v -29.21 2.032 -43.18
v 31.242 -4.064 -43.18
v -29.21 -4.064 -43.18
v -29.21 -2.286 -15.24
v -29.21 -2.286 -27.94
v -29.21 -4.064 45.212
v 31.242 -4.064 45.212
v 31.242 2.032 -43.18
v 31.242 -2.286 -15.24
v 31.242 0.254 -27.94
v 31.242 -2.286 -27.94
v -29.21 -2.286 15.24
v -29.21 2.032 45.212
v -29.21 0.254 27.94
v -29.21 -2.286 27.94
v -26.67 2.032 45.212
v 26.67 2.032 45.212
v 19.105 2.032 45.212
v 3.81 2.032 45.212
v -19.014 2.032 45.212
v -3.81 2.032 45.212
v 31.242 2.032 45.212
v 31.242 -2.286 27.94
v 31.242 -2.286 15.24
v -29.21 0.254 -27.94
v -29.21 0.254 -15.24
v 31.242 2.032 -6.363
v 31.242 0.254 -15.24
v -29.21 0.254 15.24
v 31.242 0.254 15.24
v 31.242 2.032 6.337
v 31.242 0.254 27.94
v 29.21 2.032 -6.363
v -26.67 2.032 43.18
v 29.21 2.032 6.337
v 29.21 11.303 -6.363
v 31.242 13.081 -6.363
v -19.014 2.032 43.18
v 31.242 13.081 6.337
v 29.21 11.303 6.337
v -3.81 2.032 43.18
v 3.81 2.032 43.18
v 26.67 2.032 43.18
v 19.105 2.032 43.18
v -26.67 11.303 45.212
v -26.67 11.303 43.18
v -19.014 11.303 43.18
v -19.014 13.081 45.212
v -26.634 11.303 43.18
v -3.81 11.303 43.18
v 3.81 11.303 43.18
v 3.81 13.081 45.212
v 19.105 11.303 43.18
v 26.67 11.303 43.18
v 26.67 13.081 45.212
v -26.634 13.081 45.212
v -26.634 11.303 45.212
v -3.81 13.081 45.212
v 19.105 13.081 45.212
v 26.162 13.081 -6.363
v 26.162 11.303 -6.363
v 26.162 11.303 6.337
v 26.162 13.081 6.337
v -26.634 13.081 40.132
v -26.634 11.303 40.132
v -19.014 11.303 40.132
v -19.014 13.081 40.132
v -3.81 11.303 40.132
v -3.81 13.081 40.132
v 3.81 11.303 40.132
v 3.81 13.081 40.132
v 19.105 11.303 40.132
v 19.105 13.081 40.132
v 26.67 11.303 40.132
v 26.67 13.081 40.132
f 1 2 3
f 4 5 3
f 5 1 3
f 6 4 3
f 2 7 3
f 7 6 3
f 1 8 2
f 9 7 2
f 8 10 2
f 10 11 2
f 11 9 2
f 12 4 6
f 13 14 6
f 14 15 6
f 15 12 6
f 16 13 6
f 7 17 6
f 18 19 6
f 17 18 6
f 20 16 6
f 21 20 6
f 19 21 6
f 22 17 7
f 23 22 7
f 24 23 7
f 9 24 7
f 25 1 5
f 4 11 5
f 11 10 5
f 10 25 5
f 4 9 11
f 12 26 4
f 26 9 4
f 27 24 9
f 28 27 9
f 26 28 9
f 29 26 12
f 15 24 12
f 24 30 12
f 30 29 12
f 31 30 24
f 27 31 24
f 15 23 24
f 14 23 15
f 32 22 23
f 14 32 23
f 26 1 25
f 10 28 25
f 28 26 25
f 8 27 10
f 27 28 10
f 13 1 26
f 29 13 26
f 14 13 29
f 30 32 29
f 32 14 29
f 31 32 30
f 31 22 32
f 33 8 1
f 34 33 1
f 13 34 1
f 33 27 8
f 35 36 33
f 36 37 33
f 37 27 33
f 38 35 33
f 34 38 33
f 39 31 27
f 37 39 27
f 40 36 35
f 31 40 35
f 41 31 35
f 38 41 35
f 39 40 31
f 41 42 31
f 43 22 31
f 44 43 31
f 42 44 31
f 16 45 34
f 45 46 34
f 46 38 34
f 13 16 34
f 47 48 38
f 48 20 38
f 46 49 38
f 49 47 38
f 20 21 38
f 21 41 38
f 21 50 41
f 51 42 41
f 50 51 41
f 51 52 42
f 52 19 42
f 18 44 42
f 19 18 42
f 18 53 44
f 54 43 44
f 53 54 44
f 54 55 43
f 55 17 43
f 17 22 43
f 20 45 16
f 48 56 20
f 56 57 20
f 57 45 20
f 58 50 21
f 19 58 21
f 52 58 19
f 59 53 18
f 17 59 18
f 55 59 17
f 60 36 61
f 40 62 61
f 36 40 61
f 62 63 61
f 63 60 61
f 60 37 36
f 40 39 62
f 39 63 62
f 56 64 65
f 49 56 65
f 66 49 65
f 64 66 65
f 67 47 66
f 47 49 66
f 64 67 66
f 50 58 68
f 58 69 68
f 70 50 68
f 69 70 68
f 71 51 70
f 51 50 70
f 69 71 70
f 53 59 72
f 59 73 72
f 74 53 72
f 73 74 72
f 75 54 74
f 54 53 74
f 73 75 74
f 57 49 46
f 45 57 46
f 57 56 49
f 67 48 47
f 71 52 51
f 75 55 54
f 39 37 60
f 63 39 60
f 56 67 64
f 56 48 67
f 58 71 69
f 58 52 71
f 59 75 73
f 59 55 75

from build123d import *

# Parameters (mm, degrees)
SKETCH1_W             = 58.42
SKETCH1_H             = 86.36
BASEPLATE_DEPTH       = 2.032
SKETCH5_W             = 7.62
SKETCH5_H             = 2.032
BOSS_EXTRUDE3_DEPTH   = 9.271
SKETCH5_W_2           = 7.656133635
BOSS_EXTRUDE3_2_DEPTH = 9.271
SKETCH5_W_3           = 7.565007612
BOSS_EXTRUDE3_3_DEPTH = 9.271
SKETCH5_W_4           = 2.032
SKETCH5_H_2           = 12.7
BOSS_EXTRUDE3_4_DEPTH = 9.271
SKETCH5_2_W           = 7.62
SKETCH5_2_H           = 2.032
SKETCH5_2_W_2         = 7.656133635
SKETCH5_2_W_3         = 7.565007612
SKETCH5_2_W_4         = 2.032
SKETCH5_2_H_2         = 12.7
BOSS_EXTRUDE4_DEPTH   = 2.032
SKETCH6_W             = 7.565007612
SKETCH6_H             = 1.778
BOSS_EXTRUDE5_DEPTH   = 3.048
SKETCH6_W_2           = 7.62
BOSS_EXTRUDE5_2_DEPTH = 3.048
BOSS_EXTRUDE5_3_DEPTH = 3.048
SKETCH6_2_W           = 7.565007612
SKETCH6_2_H           = 1.778
SKETCH6_2_W_2         = 7.62
BOSS_EXTRUDE6_DEPTH   = 2.032
SKETCH7_W             = 15.203866365
SKETCH7_H             = 2.032
SKETCH7_W_2           = 15.294992388
SKETCH7_W_3           = 2.54
SKETCH7_W_4           = 2.032
SKETCH7_H_2           = 36.817012066
BOSS_EXTRUDE7_DEPTH   = 2.032
SKETCH9_W             = 12.7
SKETCH9_H             = 1.778
BOSS_EXTRUDE8_DEPTH   = 3.048
SKETCH9_2_W           = 12.7
SKETCH9_2_H           = 1.778
BOSS_EXTRUDE9_DEPTH   = 2.032
SKETCH11_W            = 60.452
SKETCH11_H            = 88.392
BOSS_EXTRUDE10_DEPTH  = 4.064
SKETCH12_W            = 12.7
SKETCH12_H            = 2.54
CUT_EXTRUDE1_DEPTH    = 77.613848676


with BuildPart() as part:
    # Sketch1 → basePlate (new body)
    with BuildSketch(Plane(origin=(0, 0, 0), x_dir=(1, 0, 0), z_dir=(0, 1, 0))):
        Rectangle(SKETCH1_W, SKETCH1_H)
    extrude(amount=BASEPLATE_DEPTH)



with BuildPart() as body_2:
    # Sketch5 → Boss-Extrude3 (new body)
    with BuildSketch(Plane(origin=(0, 2.032, 0), x_dir=(1, 0, 0), z_dir=(0, 1, 0))):
        with Locations((0, -44.196)):
            Rectangle(SKETCH5_W, SKETCH5_H)
    extrude(amount=BOSS_EXTRUDE3_DEPTH)


with BuildPart() as body_3:
    # Sketch5 → Boss-Extrude3 2 (new body)
    with BuildSketch(Plane(origin=(0, 2.032, 0), x_dir=(1, 0, 0), z_dir=(0, 1, 0))):
        with Locations((-22.841933183, -44.196)):
            Rectangle(SKETCH5_W_2, SKETCH5_H)
    extrude(amount=BOSS_EXTRUDE3_2_DEPTH)


with BuildPart() as body_4:
    # Sketch5 → Boss-Extrude3 3 (new body)
    with BuildSketch(Plane(origin=(0, 2.032, 0), x_dir=(1, 0, 0), z_dir=(0, 1, 0))):
        with Locations((22.887496194, -44.196)):
            Rectangle(SKETCH5_W_3, SKETCH5_H)
    extrude(amount=BOSS_EXTRUDE3_3_DEPTH)


with BuildPart() as body_5:
    # Sketch5 → Boss-Extrude3 4 (new body)
    with BuildSketch(Plane(origin=(0, 2.032, 0), x_dir=(1, 0, 0), z_dir=(0, 1, 0))):
        with Locations((30.226, 0.012987934)):
            Rectangle(SKETCH5_W_4, SKETCH5_H_2)
    extrude(amount=BOSS_EXTRUDE3_4_DEPTH)


with BuildPart() as part_1:
    add(part.part)

    add(body_2.part)  # Boss-Extrude4 merges body 2

    add(body_3.part)  # Boss-Extrude4 merges body 3

    add(body_4.part)  # Boss-Extrude4 merges body 4

    add(body_5.part)  # Boss-Extrude4 merges body 5
    # Sketch5<2> → Boss-Extrude4 (add)
    with BuildSketch(Plane(origin=(0, 2.032, 0), x_dir=(1, 0, 0), z_dir=(0, 1, 0))):
        with Locations((0, -44.196)):
            Rectangle(SKETCH5_2_W, SKETCH5_2_H)
        with Locations((-22.841933183, -44.196)):
            Rectangle(SKETCH5_2_W_2, SKETCH5_2_H)
        with Locations((22.887496194, -44.196)):
            Rectangle(SKETCH5_2_W_3, SKETCH5_2_H)
        with Locations((30.226, 0.012987934)):
            Rectangle(SKETCH5_2_W_4, SKETCH5_2_H_2)
    extrude(amount=-BOSS_EXTRUDE4_DEPTH)



with BuildPart() as body_2_2:
    # Sketch6 → Boss-Extrude5 (new body)
    with BuildSketch(Plane(origin=(0, 0, 43.18), x_dir=(-1, 0, 0), z_dir=(0, 0, -1))):
        with Locations((-22.887496194, 12.192)):
            Rectangle(SKETCH6_W, SKETCH6_H)
    extrude(amount=BOSS_EXTRUDE5_DEPTH)


with BuildPart() as body_3_2:
    # Sketch6 → Boss-Extrude5 2 (new body)
    with BuildSketch(Plane(origin=(0, 0, 43.18), x_dir=(-1, 0, 0), z_dir=(0, 0, -1))):
        with Locations((0, 12.192)):
            Rectangle(SKETCH6_W_2, SKETCH6_H)
    extrude(amount=BOSS_EXTRUDE5_2_DEPTH)


with BuildPart() as body_4_2:
    # Sketch6 → Boss-Extrude5 3 (new body)
    with BuildSketch(Plane(origin=(0, 0, 43.18), x_dir=(-1, 0, 0), z_dir=(0, 0, -1))):
        with Locations((22.823866365, 12.192)):
            Rectangle(SKETCH6_W_2, SKETCH6_H)
    extrude(amount=BOSS_EXTRUDE5_3_DEPTH)


with BuildPart() as part_2:
    add(part_1.part)

    add(body_2_2.part)  # Boss-Extrude6 merges body 2 2

    add(body_3_2.part)  # Boss-Extrude6 merges body 3 2

    add(body_4_2.part)  # Boss-Extrude6 merges body 4 2
    # Sketch6<2> → Boss-Extrude6 (add)
    with BuildSketch(Plane(origin=(0, 0, 43.18), x_dir=(-1, 0, 0), z_dir=(0, 0, -1))):
        with Locations((-22.887496194, 12.192)):
            Rectangle(SKETCH6_2_W, SKETCH6_2_H)
        with Locations((0, 12.192)):
            Rectangle(SKETCH6_2_W_2, SKETCH6_2_H)
        with Locations((22.823866365, 12.192)):
            Rectangle(SKETCH6_2_W_2, SKETCH6_2_H)
    extrude(amount=-BOSS_EXTRUDE6_DEPTH)

    # Sketch7 → Boss-Extrude7 (add)
    with BuildSketch(Plane.XZ):
        with Locations((-11.411933183, 44.196)):
            Rectangle(SKETCH7_W, SKETCH7_H)
        with Locations((11.457496194, 44.196)):
            Rectangle(SKETCH7_W_2, SKETCH7_H)
        with Locations((-27.94, 44.196)):
            Rectangle(SKETCH7_W_3, SKETCH7_H)
        Polygon((29.21, 43.18), (26.67, 43.18), (26.67, 45.212), (29.21, 45.212), (31.242, 45.212), (31.242, 6.337012066), (29.21, 6.337012066), align=None)
        with Locations((30.226, -24.771493967)):
            Rectangle(SKETCH7_W_4, SKETCH7_H_2)
    extrude(amount=-BOSS_EXTRUDE7_DEPTH)



with BuildPart() as body_2_3:
    # Sketch9 → Boss-Extrude8 (new body)
    with BuildSketch(Plane.ZY.offset(-29.21)):
        with Locations((-0.012987934, 12.192)):
            Rectangle(SKETCH9_W, SKETCH9_H)
    extrude(amount=BOSS_EXTRUDE8_DEPTH)


with BuildPart() as part_3:
    add(part_2.part)

    add(body_2_3.part)  # Boss-Extrude9 merges body 2 3
    # Sketch9<2> → Boss-Extrude9 (add)
    with BuildSketch(Plane.ZY.offset(-29.21)):
        with Locations((-0.012987934, 12.192)):
            Rectangle(SKETCH9_2_W, SKETCH9_2_H)
    extrude(amount=-BOSS_EXTRUDE9_DEPTH)

    # Sketch11 → Boss-Extrude10 (add)
    with BuildSketch(Plane.XZ):
        with Locations((1.016, 1.016)):
            Rectangle(SKETCH11_W, SKETCH11_H)
    extrude(amount=BOSS_EXTRUDE10_DEPTH)

    # Sketch12 → Cut-Extrude1 (cut, through all)
    with BuildSketch(Plane.ZY.offset(29.21)):
        with Locations((-21.59, -1.016)):
            Rectangle(SKETCH12_W, SKETCH12_H)
        with Locations((21.59, -1.016)):
            Rectangle(SKETCH12_W, SKETCH12_H)
    extrude(amount=-CUT_EXTRUDE1_DEPTH, mode=Mode.SUBTRACT)


solid = part_3.part
